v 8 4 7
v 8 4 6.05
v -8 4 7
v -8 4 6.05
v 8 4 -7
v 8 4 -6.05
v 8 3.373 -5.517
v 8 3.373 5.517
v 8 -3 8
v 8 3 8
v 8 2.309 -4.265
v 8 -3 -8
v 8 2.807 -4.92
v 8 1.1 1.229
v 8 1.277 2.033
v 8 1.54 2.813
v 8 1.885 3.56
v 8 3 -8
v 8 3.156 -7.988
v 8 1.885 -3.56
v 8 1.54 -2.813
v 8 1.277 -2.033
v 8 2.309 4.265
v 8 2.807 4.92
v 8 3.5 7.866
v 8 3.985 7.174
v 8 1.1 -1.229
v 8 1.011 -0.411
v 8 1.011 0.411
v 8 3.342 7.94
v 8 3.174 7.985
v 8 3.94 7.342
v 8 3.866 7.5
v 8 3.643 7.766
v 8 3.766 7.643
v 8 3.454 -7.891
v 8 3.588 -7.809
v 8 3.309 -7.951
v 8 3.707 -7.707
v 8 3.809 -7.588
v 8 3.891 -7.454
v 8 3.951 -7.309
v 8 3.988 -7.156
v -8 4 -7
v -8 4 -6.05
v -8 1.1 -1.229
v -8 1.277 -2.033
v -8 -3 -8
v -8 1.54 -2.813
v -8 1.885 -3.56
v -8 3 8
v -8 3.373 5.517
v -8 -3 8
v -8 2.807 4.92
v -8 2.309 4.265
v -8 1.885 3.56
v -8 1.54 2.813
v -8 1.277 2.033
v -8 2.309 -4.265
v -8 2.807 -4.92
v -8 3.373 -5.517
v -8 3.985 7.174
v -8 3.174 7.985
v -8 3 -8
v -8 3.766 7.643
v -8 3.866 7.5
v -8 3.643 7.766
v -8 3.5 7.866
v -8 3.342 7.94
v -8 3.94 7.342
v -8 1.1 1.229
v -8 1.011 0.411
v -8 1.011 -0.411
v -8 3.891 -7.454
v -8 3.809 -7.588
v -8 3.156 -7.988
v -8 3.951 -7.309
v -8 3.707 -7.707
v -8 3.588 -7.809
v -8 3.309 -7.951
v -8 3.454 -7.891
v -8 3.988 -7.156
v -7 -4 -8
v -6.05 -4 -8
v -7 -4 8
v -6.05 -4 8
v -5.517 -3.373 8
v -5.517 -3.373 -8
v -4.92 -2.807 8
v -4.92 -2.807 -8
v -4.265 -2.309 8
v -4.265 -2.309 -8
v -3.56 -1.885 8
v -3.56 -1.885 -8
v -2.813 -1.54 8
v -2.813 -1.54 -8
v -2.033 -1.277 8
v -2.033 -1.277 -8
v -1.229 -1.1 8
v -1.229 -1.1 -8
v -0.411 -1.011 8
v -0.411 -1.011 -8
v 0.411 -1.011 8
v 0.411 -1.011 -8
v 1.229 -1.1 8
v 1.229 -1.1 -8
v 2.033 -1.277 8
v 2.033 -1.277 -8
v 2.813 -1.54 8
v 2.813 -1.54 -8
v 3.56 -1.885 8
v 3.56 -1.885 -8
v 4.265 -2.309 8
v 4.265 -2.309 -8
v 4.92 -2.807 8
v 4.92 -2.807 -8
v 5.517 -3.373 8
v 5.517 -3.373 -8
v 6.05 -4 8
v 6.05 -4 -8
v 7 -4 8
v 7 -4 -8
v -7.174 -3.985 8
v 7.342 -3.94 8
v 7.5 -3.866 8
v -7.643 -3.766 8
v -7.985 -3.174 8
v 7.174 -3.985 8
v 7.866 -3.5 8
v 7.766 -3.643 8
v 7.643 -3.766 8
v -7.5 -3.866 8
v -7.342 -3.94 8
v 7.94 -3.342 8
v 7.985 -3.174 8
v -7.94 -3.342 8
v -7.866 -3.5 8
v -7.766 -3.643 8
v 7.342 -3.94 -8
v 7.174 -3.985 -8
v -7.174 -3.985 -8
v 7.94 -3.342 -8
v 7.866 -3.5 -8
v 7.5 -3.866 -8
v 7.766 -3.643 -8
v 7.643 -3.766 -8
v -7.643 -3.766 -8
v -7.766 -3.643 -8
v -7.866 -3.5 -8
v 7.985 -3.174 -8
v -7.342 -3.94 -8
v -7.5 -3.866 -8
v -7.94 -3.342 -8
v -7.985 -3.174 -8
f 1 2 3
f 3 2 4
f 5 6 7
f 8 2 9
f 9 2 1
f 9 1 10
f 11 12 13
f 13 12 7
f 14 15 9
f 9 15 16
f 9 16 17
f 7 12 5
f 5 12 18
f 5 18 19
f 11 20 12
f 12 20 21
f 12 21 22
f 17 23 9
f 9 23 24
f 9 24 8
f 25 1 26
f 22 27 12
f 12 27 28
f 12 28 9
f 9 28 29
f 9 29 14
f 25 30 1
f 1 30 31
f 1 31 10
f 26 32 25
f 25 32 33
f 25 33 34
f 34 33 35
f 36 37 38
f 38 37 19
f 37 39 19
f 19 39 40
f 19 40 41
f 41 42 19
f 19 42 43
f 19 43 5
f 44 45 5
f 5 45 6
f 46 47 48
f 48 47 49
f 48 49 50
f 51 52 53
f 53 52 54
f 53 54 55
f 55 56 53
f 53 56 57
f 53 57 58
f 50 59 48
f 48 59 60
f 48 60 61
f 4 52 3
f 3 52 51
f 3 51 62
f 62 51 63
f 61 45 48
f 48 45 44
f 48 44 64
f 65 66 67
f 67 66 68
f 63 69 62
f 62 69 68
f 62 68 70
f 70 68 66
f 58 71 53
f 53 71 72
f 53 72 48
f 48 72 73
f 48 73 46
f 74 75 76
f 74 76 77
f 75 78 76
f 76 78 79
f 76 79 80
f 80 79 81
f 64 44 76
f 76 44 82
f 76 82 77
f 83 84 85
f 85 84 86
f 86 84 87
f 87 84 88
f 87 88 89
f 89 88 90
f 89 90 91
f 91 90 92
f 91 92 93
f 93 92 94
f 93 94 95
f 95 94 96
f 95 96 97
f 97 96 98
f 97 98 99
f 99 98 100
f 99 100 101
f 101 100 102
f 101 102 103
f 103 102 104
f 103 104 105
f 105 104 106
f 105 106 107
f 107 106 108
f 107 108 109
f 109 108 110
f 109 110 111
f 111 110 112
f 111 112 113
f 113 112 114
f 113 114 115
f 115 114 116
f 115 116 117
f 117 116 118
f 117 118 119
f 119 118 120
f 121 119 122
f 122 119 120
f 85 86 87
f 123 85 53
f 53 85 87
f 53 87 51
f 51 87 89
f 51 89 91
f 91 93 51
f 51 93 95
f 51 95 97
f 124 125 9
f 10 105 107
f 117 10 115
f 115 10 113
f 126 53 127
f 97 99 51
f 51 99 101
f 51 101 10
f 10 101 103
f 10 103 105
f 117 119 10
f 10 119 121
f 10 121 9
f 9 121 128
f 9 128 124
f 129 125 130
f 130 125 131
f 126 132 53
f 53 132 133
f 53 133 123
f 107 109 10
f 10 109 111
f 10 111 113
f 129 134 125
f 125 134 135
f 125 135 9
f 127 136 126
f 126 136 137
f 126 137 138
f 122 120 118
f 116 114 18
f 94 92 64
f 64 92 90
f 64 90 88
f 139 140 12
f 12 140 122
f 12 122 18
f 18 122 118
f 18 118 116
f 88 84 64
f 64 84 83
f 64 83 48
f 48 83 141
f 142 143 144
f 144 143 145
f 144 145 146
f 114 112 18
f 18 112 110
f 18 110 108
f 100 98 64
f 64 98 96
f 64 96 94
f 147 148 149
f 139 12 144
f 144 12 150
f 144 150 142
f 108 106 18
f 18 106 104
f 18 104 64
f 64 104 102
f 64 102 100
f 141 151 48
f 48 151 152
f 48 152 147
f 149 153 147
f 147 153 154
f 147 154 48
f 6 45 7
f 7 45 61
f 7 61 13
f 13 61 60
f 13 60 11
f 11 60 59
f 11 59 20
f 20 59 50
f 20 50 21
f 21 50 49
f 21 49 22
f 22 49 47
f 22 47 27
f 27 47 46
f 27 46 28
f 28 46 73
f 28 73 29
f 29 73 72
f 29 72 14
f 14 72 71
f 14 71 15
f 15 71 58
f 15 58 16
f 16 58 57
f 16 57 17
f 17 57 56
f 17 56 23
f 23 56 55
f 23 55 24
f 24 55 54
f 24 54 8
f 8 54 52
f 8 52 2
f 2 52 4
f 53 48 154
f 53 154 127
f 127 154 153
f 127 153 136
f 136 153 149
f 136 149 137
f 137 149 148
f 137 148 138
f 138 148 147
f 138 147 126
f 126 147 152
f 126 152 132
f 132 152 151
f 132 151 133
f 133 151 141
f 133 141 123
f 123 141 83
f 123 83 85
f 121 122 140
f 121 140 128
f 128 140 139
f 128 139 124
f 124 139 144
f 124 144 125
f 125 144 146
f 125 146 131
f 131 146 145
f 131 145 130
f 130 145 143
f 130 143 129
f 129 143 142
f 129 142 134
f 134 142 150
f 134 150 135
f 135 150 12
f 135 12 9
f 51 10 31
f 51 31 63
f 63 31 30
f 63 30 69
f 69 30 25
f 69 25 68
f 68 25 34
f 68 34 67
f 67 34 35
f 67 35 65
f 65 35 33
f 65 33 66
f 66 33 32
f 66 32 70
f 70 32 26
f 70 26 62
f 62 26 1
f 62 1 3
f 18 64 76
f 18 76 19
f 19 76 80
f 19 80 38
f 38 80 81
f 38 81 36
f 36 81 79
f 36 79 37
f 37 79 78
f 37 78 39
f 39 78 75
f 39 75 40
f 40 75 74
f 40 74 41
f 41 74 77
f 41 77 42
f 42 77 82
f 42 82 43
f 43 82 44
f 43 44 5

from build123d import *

# Parameters (mm, degrees)
BOSS_EXTRUDE1_DEPTH = 8
SKETCH2_R           = 7.6
CUT_EXTRUDE1_DEPTH  = 26
FILLET1_R           = 1


with BuildPart() as part:
    # Sketch1 → Boss-Extrude1 (new body, symmetric)
    with BuildSketch(Plane.XY):
        with BuildLine():
            Line((8, 4), (-8, 4))
            Line((-8, 4), (-8, -4))
            Line((-8, -4), (-6.049793385, -4))
            ThreePointArc((-6.049793385, -4), (0, -1), (6.049793385, -4))
            Line((6.049793385, -4), (8, -4))
            Line((8, -4), (8, 4))
        make_face()
    extrude(amount=BOSS_EXTRUDE1_DEPTH, both=True)

    # Sketch2 → Cut-Extrude1 (cut)
    with BuildSketch(Plane.ZY.offset(8)):
        with Locations((0, 8.6)):
            Circle(SKETCH2_R)
    extrude(amount=-CUT_EXTRUDE1_DEPTH, mode=Mode.SUBTRACT)

    # Fillet1
    fillet1_edges = [part.edges().sort_by_distance(p)[0] for p in [
        (8, -4, 0),
        (-8, -4, 0),
        (0, 4, -8),
        (0, 4, 8),
    ]]
    fillet(fillet1_edges, radius=FILLET1_R)


solid = part.part
